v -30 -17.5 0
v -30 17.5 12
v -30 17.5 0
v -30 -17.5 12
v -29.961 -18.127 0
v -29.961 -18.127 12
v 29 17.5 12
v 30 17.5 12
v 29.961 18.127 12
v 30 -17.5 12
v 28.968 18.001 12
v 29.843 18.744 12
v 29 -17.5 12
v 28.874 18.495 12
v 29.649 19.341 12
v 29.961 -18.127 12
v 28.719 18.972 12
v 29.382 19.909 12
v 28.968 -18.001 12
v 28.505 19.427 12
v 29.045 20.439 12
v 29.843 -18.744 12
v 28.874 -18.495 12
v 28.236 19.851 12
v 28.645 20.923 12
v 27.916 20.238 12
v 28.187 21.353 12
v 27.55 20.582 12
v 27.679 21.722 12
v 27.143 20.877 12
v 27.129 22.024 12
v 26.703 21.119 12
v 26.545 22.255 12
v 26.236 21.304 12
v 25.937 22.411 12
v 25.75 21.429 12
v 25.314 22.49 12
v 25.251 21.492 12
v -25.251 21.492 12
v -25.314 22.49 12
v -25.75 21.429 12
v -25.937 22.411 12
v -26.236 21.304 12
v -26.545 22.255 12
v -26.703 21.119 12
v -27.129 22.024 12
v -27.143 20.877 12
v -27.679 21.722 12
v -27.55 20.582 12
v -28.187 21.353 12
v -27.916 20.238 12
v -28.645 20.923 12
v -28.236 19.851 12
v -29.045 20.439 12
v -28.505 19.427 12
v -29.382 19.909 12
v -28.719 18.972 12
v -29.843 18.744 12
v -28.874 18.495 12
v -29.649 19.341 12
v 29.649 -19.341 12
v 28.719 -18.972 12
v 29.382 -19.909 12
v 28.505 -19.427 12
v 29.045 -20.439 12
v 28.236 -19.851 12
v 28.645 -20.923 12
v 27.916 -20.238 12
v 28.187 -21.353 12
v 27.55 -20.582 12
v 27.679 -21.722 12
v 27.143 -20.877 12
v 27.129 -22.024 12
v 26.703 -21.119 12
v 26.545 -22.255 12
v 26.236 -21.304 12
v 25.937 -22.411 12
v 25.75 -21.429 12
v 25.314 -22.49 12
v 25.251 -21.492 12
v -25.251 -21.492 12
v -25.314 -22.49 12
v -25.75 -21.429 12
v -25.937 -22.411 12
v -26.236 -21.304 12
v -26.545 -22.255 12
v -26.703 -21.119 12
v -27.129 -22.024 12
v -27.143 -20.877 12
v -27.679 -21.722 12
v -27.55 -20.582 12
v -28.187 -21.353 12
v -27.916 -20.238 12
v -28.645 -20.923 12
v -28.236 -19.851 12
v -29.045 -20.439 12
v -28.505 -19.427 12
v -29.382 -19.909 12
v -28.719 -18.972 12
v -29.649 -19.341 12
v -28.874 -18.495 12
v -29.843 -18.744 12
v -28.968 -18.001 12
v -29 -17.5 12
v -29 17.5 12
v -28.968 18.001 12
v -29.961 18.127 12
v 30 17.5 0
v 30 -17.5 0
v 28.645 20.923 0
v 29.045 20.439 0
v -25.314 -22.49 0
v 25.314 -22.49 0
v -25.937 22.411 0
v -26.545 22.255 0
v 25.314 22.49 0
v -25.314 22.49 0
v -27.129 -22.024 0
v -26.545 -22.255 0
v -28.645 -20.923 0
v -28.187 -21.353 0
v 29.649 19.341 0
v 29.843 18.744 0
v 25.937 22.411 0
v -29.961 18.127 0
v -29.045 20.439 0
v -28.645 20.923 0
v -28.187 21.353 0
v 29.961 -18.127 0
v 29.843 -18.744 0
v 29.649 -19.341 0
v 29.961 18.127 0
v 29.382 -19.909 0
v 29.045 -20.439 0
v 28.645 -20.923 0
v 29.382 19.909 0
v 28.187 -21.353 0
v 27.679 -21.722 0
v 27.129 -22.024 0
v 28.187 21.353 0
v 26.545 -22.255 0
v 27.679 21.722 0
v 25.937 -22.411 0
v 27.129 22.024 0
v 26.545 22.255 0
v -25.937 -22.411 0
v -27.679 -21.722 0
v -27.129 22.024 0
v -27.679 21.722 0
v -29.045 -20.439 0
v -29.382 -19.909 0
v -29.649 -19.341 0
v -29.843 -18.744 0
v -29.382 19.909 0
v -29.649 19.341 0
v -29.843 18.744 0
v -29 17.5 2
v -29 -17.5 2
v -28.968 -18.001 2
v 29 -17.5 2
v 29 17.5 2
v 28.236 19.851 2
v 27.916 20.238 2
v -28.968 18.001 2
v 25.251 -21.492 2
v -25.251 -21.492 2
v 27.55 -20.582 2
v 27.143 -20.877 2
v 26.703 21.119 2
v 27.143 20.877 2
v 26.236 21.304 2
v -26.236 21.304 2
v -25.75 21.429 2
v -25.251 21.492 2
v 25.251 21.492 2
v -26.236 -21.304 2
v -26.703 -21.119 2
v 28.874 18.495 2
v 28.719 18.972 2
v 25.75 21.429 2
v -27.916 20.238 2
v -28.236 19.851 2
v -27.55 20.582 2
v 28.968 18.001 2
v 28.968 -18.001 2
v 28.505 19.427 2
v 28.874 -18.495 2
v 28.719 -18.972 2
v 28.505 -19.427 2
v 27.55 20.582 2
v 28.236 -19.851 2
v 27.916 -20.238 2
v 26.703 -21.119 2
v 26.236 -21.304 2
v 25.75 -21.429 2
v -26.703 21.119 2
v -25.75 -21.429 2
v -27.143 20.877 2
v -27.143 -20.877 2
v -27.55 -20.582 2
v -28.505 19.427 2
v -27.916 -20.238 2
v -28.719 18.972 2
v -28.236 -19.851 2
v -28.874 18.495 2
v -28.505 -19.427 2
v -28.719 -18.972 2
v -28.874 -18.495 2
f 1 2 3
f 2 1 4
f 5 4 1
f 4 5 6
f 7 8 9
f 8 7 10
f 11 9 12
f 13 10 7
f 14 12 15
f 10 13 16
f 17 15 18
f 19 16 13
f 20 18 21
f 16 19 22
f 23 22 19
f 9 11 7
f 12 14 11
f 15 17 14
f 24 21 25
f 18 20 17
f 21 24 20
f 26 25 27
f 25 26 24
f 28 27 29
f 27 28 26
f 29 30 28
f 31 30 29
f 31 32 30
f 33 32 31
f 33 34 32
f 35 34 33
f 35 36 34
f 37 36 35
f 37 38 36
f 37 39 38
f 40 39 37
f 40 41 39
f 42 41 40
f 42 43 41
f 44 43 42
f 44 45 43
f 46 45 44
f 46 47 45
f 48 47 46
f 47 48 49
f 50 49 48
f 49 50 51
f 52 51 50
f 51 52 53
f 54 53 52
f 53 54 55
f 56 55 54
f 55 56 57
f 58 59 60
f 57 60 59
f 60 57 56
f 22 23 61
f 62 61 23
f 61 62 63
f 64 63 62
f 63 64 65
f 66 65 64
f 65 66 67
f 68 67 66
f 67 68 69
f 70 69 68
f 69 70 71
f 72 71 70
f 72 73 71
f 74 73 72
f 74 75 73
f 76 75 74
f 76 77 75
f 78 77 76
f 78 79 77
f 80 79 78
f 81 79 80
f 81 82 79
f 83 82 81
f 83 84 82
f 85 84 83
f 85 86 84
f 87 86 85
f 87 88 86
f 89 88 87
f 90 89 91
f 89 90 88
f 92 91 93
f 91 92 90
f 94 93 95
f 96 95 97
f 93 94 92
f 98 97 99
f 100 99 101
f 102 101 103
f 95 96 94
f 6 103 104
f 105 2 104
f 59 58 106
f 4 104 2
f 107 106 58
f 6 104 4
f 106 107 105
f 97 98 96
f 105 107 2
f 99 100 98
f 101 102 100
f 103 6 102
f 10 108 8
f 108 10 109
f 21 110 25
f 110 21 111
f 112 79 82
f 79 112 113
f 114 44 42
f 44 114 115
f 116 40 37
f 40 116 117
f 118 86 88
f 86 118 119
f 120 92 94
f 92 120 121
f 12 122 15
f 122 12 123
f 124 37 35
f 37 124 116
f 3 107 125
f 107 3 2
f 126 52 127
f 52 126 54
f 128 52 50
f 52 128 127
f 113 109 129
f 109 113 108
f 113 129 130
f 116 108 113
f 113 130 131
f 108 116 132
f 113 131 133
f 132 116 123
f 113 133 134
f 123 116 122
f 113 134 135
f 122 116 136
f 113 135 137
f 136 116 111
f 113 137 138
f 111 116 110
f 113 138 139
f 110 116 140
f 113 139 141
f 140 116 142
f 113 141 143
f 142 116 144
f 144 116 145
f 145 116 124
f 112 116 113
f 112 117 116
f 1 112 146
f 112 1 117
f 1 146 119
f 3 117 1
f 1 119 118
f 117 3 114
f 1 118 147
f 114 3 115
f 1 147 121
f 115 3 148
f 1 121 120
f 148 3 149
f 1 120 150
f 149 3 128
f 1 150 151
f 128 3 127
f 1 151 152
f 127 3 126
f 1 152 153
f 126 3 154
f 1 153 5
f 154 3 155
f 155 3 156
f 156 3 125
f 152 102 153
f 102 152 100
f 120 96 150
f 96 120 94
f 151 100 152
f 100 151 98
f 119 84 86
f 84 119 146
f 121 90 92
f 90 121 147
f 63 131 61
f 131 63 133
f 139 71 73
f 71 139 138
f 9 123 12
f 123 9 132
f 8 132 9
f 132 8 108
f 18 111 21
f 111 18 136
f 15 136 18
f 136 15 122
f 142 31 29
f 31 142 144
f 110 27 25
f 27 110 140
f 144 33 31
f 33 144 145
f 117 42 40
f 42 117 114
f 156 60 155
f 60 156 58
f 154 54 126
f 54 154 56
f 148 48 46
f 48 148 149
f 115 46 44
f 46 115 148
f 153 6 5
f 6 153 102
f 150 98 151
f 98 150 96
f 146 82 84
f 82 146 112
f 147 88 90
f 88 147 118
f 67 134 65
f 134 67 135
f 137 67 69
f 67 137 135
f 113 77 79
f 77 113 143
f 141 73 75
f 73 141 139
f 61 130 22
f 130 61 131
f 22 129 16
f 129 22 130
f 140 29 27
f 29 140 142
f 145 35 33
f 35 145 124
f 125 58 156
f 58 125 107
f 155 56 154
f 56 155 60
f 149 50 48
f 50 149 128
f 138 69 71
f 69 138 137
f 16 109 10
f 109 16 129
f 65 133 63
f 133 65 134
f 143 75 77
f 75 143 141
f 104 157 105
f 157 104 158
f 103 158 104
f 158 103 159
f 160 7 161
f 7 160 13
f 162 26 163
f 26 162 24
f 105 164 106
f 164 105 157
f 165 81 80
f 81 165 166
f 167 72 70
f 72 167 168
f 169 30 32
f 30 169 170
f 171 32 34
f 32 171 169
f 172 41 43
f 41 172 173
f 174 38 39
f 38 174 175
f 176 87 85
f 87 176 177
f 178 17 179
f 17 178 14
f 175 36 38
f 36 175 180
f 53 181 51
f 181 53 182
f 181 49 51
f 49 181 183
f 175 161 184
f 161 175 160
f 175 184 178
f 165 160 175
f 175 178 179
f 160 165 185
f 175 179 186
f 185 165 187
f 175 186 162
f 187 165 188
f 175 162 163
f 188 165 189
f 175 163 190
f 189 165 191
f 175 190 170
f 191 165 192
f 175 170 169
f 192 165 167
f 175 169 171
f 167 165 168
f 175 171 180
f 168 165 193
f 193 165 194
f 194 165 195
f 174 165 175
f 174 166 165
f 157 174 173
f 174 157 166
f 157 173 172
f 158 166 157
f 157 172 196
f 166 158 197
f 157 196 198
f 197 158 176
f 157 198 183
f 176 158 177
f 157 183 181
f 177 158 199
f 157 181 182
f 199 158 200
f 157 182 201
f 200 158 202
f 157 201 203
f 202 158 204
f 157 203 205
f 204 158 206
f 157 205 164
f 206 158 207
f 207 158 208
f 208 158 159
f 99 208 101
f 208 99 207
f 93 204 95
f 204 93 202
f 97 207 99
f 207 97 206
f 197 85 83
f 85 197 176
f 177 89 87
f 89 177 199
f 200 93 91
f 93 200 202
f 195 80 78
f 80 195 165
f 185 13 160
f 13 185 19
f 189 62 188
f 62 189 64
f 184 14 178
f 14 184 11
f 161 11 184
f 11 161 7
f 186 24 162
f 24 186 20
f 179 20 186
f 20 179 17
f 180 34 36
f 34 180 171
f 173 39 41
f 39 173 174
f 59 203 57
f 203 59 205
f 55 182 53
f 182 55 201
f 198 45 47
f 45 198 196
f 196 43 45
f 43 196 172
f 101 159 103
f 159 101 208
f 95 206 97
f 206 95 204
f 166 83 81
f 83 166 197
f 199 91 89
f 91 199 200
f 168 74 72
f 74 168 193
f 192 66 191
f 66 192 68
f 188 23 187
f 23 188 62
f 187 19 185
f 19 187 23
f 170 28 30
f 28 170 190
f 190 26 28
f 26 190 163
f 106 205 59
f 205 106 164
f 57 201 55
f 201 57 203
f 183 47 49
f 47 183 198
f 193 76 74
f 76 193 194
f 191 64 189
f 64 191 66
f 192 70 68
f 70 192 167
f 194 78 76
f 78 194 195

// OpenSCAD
$fn = 50;


difference() {
	union() {
		hull() {
			translate(v = [-25.0000000000, 17.5000000000, 0]) {
				cylinder(h = 12, r = 5);
			}
			translate(v = [25.0000000000, 17.5000000000, 0]) {
				cylinder(h = 12, r = 5);
			}
			translate(v = [-25.0000000000, -17.5000000000, 0]) {
				cylinder(h = 12, r = 5);
			}
			translate(v = [25.0000000000, -17.5000000000, 0]) {
				cylinder(h = 12, r = 5);
			}
		}
	}
	union() {
		translate(v = [0, 0, 2]) {
			#hull() {
				translate(v = [-25.0000000000, 17.5000000000, 0]) {
					cylinder(h = 10, r = 4);
				}
				translate(v = [25.0000000000, 17.5000000000, 0]) {
					cylinder(h = 10, r = 4);
				}
				translate(v = [-25.0000000000, -17.5000000000, 0]) {
					cylinder(h = 10, r = 4);
				}
				translate(v = [25.0000000000, -17.5000000000, 0]) {
					cylinder(h = 10, r = 4);
				}
			}
		}
	}
}
